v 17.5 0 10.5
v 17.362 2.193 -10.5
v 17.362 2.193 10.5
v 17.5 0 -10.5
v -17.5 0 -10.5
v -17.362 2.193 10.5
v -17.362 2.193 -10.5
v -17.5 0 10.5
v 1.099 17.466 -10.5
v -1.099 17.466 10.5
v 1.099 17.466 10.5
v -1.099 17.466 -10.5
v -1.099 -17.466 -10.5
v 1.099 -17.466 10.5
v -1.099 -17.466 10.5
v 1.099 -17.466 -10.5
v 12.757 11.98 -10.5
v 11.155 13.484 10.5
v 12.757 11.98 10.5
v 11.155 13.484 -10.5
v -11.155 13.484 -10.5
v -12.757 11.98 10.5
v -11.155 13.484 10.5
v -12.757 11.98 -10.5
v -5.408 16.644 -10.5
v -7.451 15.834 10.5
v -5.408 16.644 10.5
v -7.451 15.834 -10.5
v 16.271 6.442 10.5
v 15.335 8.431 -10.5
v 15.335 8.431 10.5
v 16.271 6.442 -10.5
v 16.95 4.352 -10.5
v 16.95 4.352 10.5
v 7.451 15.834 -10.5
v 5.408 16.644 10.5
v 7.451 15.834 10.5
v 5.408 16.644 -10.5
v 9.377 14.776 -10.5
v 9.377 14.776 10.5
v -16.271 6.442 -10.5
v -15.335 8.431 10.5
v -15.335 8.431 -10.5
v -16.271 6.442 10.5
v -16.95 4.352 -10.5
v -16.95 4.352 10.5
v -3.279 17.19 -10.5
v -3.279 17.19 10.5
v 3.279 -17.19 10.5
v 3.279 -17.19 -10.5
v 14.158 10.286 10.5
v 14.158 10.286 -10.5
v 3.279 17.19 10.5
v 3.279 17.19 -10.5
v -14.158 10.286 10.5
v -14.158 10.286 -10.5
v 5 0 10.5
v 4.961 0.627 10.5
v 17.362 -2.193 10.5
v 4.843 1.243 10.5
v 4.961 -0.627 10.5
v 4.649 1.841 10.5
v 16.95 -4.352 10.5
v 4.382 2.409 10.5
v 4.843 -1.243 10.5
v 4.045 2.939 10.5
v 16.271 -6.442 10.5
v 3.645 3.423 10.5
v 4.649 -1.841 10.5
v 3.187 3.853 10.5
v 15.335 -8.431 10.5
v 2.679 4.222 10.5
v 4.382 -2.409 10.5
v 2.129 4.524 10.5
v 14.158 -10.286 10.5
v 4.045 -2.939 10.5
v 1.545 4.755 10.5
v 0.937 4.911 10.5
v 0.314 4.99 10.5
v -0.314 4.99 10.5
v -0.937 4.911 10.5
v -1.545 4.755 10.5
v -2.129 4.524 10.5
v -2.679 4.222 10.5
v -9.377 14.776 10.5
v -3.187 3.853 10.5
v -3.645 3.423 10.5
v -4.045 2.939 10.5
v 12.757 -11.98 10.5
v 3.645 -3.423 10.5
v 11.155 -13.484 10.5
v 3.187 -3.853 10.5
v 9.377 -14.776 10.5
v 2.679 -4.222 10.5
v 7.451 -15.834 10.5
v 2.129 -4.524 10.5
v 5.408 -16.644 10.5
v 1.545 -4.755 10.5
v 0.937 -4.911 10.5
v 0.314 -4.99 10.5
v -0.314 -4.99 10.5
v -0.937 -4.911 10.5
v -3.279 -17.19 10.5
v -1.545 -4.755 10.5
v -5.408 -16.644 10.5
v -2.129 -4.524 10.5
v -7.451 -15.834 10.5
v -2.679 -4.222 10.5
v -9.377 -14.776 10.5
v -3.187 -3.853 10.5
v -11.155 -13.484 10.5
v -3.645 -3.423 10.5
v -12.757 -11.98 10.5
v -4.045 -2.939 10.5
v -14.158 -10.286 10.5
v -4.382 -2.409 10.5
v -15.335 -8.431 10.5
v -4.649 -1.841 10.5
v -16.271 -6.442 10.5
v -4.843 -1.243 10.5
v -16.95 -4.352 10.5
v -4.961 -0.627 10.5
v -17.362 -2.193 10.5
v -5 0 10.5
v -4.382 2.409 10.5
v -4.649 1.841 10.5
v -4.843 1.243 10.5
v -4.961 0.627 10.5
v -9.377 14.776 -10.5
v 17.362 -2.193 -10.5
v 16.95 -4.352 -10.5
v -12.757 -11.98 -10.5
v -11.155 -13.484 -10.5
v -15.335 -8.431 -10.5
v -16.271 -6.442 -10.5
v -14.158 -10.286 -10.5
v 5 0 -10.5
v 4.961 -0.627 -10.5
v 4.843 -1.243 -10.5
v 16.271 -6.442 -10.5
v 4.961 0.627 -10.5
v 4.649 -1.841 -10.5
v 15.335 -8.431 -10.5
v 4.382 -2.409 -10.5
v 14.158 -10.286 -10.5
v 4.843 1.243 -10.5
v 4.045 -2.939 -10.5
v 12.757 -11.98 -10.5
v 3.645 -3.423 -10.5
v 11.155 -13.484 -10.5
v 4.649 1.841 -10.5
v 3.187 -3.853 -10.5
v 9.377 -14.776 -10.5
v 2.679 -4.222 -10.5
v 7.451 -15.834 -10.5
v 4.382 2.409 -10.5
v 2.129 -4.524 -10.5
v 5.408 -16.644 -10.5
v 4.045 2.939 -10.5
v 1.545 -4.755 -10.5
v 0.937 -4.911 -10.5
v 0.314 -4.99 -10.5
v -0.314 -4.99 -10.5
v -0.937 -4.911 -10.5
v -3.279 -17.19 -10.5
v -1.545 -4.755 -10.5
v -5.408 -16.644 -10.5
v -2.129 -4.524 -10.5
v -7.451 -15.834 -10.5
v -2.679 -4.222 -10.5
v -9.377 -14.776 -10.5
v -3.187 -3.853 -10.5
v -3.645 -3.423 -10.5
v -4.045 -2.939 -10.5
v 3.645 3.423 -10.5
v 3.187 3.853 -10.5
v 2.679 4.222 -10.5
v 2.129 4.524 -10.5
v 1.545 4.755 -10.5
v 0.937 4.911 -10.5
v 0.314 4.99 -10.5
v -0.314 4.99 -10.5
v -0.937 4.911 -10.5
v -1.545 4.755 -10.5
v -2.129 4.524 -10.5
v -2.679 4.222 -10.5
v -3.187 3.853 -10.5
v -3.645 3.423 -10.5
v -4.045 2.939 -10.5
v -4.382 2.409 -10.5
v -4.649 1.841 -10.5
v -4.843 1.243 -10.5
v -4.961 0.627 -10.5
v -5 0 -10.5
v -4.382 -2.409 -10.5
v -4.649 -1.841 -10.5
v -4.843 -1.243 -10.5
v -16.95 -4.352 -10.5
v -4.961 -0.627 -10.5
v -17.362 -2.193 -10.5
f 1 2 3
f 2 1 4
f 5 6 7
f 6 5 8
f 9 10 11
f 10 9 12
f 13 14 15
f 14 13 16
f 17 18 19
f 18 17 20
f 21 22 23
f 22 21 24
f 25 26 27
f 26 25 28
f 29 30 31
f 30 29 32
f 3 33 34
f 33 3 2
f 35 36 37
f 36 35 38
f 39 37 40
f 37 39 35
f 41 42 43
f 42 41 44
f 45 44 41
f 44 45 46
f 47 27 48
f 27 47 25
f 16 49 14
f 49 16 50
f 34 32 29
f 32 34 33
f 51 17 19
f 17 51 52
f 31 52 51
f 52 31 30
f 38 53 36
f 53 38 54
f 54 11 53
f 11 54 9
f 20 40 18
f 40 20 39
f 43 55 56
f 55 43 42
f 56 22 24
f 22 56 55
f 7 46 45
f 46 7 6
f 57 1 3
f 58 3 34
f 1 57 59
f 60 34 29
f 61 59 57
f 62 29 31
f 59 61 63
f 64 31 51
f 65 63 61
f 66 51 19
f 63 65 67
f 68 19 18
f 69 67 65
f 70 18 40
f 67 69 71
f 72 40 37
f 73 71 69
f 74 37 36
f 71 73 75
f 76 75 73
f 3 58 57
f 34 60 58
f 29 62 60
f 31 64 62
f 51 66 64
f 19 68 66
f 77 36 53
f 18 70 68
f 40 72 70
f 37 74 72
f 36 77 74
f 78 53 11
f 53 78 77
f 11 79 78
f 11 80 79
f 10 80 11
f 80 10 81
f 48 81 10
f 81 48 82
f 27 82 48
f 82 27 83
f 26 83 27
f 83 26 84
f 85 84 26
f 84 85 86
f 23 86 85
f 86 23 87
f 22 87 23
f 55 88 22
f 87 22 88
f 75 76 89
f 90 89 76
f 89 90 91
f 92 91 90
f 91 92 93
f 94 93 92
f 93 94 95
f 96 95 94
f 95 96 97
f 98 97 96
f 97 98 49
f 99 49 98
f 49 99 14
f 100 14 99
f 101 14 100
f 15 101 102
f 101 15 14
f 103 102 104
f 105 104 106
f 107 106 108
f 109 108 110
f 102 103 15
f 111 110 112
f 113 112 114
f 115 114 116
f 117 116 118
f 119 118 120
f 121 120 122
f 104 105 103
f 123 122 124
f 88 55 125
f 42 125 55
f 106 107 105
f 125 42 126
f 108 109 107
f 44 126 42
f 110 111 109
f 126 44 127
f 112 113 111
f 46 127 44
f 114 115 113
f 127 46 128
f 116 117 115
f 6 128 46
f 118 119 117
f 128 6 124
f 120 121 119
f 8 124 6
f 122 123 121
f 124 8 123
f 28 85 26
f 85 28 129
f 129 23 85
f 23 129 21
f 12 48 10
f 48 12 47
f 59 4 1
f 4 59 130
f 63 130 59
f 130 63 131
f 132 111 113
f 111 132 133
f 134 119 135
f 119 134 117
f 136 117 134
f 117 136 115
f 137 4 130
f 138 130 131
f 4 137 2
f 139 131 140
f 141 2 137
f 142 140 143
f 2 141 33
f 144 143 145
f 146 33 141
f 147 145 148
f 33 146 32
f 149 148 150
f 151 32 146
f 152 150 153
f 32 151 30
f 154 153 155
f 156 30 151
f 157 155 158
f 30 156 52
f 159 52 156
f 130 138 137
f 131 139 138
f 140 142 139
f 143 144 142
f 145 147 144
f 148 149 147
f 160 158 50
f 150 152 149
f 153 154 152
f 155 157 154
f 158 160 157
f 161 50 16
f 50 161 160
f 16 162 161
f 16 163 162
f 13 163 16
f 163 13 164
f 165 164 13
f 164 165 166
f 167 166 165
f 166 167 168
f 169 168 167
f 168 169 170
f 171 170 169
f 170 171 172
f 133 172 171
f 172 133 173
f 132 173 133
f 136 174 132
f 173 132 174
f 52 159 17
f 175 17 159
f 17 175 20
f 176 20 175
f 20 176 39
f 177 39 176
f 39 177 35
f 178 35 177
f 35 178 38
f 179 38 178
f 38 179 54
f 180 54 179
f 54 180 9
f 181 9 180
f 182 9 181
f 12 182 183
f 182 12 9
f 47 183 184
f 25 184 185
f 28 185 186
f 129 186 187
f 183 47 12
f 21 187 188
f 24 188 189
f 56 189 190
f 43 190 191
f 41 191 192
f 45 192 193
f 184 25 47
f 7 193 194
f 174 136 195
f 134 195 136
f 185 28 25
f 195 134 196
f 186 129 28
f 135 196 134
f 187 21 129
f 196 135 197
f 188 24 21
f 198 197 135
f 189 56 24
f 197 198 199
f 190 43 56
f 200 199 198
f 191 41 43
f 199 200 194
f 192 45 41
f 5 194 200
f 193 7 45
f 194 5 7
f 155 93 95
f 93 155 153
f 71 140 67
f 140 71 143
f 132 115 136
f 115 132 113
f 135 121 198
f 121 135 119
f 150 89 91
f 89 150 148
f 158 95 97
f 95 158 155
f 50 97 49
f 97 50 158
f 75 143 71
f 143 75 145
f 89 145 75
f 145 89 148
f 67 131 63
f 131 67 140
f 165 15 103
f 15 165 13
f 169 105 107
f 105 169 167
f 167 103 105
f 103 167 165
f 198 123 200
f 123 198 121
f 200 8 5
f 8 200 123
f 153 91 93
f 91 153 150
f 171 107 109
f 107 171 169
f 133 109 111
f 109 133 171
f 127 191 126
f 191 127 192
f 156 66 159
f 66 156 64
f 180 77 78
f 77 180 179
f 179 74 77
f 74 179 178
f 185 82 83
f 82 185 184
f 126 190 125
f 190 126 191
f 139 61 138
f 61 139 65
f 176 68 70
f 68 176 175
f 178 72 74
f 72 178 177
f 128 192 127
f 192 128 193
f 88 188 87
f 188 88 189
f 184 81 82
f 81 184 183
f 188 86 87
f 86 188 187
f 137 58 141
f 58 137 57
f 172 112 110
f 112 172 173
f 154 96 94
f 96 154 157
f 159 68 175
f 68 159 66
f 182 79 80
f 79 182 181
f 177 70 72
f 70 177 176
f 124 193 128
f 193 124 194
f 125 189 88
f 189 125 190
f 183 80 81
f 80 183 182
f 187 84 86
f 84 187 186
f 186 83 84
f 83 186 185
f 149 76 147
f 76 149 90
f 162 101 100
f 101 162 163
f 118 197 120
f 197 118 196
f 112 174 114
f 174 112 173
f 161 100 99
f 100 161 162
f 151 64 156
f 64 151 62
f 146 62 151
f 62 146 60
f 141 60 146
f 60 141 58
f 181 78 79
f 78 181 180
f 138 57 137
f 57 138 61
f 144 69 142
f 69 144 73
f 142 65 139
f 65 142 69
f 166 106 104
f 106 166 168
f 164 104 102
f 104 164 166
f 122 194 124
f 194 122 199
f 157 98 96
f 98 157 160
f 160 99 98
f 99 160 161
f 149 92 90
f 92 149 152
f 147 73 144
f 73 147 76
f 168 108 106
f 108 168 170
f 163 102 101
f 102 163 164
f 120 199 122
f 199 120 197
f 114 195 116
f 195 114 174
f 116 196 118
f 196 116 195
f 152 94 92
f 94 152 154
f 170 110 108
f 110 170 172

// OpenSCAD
$fn = 50;


difference() {
	union() {
		translate(v = [0, 0, -10.5000000000]) {
			cylinder(h = 21, r = 17.5000000000);
		}
	}
	union() {
		translate(v = [0, 0, -100.0000000000]) {
			cylinder(h = 200, r = 5);
		}
	}
}
